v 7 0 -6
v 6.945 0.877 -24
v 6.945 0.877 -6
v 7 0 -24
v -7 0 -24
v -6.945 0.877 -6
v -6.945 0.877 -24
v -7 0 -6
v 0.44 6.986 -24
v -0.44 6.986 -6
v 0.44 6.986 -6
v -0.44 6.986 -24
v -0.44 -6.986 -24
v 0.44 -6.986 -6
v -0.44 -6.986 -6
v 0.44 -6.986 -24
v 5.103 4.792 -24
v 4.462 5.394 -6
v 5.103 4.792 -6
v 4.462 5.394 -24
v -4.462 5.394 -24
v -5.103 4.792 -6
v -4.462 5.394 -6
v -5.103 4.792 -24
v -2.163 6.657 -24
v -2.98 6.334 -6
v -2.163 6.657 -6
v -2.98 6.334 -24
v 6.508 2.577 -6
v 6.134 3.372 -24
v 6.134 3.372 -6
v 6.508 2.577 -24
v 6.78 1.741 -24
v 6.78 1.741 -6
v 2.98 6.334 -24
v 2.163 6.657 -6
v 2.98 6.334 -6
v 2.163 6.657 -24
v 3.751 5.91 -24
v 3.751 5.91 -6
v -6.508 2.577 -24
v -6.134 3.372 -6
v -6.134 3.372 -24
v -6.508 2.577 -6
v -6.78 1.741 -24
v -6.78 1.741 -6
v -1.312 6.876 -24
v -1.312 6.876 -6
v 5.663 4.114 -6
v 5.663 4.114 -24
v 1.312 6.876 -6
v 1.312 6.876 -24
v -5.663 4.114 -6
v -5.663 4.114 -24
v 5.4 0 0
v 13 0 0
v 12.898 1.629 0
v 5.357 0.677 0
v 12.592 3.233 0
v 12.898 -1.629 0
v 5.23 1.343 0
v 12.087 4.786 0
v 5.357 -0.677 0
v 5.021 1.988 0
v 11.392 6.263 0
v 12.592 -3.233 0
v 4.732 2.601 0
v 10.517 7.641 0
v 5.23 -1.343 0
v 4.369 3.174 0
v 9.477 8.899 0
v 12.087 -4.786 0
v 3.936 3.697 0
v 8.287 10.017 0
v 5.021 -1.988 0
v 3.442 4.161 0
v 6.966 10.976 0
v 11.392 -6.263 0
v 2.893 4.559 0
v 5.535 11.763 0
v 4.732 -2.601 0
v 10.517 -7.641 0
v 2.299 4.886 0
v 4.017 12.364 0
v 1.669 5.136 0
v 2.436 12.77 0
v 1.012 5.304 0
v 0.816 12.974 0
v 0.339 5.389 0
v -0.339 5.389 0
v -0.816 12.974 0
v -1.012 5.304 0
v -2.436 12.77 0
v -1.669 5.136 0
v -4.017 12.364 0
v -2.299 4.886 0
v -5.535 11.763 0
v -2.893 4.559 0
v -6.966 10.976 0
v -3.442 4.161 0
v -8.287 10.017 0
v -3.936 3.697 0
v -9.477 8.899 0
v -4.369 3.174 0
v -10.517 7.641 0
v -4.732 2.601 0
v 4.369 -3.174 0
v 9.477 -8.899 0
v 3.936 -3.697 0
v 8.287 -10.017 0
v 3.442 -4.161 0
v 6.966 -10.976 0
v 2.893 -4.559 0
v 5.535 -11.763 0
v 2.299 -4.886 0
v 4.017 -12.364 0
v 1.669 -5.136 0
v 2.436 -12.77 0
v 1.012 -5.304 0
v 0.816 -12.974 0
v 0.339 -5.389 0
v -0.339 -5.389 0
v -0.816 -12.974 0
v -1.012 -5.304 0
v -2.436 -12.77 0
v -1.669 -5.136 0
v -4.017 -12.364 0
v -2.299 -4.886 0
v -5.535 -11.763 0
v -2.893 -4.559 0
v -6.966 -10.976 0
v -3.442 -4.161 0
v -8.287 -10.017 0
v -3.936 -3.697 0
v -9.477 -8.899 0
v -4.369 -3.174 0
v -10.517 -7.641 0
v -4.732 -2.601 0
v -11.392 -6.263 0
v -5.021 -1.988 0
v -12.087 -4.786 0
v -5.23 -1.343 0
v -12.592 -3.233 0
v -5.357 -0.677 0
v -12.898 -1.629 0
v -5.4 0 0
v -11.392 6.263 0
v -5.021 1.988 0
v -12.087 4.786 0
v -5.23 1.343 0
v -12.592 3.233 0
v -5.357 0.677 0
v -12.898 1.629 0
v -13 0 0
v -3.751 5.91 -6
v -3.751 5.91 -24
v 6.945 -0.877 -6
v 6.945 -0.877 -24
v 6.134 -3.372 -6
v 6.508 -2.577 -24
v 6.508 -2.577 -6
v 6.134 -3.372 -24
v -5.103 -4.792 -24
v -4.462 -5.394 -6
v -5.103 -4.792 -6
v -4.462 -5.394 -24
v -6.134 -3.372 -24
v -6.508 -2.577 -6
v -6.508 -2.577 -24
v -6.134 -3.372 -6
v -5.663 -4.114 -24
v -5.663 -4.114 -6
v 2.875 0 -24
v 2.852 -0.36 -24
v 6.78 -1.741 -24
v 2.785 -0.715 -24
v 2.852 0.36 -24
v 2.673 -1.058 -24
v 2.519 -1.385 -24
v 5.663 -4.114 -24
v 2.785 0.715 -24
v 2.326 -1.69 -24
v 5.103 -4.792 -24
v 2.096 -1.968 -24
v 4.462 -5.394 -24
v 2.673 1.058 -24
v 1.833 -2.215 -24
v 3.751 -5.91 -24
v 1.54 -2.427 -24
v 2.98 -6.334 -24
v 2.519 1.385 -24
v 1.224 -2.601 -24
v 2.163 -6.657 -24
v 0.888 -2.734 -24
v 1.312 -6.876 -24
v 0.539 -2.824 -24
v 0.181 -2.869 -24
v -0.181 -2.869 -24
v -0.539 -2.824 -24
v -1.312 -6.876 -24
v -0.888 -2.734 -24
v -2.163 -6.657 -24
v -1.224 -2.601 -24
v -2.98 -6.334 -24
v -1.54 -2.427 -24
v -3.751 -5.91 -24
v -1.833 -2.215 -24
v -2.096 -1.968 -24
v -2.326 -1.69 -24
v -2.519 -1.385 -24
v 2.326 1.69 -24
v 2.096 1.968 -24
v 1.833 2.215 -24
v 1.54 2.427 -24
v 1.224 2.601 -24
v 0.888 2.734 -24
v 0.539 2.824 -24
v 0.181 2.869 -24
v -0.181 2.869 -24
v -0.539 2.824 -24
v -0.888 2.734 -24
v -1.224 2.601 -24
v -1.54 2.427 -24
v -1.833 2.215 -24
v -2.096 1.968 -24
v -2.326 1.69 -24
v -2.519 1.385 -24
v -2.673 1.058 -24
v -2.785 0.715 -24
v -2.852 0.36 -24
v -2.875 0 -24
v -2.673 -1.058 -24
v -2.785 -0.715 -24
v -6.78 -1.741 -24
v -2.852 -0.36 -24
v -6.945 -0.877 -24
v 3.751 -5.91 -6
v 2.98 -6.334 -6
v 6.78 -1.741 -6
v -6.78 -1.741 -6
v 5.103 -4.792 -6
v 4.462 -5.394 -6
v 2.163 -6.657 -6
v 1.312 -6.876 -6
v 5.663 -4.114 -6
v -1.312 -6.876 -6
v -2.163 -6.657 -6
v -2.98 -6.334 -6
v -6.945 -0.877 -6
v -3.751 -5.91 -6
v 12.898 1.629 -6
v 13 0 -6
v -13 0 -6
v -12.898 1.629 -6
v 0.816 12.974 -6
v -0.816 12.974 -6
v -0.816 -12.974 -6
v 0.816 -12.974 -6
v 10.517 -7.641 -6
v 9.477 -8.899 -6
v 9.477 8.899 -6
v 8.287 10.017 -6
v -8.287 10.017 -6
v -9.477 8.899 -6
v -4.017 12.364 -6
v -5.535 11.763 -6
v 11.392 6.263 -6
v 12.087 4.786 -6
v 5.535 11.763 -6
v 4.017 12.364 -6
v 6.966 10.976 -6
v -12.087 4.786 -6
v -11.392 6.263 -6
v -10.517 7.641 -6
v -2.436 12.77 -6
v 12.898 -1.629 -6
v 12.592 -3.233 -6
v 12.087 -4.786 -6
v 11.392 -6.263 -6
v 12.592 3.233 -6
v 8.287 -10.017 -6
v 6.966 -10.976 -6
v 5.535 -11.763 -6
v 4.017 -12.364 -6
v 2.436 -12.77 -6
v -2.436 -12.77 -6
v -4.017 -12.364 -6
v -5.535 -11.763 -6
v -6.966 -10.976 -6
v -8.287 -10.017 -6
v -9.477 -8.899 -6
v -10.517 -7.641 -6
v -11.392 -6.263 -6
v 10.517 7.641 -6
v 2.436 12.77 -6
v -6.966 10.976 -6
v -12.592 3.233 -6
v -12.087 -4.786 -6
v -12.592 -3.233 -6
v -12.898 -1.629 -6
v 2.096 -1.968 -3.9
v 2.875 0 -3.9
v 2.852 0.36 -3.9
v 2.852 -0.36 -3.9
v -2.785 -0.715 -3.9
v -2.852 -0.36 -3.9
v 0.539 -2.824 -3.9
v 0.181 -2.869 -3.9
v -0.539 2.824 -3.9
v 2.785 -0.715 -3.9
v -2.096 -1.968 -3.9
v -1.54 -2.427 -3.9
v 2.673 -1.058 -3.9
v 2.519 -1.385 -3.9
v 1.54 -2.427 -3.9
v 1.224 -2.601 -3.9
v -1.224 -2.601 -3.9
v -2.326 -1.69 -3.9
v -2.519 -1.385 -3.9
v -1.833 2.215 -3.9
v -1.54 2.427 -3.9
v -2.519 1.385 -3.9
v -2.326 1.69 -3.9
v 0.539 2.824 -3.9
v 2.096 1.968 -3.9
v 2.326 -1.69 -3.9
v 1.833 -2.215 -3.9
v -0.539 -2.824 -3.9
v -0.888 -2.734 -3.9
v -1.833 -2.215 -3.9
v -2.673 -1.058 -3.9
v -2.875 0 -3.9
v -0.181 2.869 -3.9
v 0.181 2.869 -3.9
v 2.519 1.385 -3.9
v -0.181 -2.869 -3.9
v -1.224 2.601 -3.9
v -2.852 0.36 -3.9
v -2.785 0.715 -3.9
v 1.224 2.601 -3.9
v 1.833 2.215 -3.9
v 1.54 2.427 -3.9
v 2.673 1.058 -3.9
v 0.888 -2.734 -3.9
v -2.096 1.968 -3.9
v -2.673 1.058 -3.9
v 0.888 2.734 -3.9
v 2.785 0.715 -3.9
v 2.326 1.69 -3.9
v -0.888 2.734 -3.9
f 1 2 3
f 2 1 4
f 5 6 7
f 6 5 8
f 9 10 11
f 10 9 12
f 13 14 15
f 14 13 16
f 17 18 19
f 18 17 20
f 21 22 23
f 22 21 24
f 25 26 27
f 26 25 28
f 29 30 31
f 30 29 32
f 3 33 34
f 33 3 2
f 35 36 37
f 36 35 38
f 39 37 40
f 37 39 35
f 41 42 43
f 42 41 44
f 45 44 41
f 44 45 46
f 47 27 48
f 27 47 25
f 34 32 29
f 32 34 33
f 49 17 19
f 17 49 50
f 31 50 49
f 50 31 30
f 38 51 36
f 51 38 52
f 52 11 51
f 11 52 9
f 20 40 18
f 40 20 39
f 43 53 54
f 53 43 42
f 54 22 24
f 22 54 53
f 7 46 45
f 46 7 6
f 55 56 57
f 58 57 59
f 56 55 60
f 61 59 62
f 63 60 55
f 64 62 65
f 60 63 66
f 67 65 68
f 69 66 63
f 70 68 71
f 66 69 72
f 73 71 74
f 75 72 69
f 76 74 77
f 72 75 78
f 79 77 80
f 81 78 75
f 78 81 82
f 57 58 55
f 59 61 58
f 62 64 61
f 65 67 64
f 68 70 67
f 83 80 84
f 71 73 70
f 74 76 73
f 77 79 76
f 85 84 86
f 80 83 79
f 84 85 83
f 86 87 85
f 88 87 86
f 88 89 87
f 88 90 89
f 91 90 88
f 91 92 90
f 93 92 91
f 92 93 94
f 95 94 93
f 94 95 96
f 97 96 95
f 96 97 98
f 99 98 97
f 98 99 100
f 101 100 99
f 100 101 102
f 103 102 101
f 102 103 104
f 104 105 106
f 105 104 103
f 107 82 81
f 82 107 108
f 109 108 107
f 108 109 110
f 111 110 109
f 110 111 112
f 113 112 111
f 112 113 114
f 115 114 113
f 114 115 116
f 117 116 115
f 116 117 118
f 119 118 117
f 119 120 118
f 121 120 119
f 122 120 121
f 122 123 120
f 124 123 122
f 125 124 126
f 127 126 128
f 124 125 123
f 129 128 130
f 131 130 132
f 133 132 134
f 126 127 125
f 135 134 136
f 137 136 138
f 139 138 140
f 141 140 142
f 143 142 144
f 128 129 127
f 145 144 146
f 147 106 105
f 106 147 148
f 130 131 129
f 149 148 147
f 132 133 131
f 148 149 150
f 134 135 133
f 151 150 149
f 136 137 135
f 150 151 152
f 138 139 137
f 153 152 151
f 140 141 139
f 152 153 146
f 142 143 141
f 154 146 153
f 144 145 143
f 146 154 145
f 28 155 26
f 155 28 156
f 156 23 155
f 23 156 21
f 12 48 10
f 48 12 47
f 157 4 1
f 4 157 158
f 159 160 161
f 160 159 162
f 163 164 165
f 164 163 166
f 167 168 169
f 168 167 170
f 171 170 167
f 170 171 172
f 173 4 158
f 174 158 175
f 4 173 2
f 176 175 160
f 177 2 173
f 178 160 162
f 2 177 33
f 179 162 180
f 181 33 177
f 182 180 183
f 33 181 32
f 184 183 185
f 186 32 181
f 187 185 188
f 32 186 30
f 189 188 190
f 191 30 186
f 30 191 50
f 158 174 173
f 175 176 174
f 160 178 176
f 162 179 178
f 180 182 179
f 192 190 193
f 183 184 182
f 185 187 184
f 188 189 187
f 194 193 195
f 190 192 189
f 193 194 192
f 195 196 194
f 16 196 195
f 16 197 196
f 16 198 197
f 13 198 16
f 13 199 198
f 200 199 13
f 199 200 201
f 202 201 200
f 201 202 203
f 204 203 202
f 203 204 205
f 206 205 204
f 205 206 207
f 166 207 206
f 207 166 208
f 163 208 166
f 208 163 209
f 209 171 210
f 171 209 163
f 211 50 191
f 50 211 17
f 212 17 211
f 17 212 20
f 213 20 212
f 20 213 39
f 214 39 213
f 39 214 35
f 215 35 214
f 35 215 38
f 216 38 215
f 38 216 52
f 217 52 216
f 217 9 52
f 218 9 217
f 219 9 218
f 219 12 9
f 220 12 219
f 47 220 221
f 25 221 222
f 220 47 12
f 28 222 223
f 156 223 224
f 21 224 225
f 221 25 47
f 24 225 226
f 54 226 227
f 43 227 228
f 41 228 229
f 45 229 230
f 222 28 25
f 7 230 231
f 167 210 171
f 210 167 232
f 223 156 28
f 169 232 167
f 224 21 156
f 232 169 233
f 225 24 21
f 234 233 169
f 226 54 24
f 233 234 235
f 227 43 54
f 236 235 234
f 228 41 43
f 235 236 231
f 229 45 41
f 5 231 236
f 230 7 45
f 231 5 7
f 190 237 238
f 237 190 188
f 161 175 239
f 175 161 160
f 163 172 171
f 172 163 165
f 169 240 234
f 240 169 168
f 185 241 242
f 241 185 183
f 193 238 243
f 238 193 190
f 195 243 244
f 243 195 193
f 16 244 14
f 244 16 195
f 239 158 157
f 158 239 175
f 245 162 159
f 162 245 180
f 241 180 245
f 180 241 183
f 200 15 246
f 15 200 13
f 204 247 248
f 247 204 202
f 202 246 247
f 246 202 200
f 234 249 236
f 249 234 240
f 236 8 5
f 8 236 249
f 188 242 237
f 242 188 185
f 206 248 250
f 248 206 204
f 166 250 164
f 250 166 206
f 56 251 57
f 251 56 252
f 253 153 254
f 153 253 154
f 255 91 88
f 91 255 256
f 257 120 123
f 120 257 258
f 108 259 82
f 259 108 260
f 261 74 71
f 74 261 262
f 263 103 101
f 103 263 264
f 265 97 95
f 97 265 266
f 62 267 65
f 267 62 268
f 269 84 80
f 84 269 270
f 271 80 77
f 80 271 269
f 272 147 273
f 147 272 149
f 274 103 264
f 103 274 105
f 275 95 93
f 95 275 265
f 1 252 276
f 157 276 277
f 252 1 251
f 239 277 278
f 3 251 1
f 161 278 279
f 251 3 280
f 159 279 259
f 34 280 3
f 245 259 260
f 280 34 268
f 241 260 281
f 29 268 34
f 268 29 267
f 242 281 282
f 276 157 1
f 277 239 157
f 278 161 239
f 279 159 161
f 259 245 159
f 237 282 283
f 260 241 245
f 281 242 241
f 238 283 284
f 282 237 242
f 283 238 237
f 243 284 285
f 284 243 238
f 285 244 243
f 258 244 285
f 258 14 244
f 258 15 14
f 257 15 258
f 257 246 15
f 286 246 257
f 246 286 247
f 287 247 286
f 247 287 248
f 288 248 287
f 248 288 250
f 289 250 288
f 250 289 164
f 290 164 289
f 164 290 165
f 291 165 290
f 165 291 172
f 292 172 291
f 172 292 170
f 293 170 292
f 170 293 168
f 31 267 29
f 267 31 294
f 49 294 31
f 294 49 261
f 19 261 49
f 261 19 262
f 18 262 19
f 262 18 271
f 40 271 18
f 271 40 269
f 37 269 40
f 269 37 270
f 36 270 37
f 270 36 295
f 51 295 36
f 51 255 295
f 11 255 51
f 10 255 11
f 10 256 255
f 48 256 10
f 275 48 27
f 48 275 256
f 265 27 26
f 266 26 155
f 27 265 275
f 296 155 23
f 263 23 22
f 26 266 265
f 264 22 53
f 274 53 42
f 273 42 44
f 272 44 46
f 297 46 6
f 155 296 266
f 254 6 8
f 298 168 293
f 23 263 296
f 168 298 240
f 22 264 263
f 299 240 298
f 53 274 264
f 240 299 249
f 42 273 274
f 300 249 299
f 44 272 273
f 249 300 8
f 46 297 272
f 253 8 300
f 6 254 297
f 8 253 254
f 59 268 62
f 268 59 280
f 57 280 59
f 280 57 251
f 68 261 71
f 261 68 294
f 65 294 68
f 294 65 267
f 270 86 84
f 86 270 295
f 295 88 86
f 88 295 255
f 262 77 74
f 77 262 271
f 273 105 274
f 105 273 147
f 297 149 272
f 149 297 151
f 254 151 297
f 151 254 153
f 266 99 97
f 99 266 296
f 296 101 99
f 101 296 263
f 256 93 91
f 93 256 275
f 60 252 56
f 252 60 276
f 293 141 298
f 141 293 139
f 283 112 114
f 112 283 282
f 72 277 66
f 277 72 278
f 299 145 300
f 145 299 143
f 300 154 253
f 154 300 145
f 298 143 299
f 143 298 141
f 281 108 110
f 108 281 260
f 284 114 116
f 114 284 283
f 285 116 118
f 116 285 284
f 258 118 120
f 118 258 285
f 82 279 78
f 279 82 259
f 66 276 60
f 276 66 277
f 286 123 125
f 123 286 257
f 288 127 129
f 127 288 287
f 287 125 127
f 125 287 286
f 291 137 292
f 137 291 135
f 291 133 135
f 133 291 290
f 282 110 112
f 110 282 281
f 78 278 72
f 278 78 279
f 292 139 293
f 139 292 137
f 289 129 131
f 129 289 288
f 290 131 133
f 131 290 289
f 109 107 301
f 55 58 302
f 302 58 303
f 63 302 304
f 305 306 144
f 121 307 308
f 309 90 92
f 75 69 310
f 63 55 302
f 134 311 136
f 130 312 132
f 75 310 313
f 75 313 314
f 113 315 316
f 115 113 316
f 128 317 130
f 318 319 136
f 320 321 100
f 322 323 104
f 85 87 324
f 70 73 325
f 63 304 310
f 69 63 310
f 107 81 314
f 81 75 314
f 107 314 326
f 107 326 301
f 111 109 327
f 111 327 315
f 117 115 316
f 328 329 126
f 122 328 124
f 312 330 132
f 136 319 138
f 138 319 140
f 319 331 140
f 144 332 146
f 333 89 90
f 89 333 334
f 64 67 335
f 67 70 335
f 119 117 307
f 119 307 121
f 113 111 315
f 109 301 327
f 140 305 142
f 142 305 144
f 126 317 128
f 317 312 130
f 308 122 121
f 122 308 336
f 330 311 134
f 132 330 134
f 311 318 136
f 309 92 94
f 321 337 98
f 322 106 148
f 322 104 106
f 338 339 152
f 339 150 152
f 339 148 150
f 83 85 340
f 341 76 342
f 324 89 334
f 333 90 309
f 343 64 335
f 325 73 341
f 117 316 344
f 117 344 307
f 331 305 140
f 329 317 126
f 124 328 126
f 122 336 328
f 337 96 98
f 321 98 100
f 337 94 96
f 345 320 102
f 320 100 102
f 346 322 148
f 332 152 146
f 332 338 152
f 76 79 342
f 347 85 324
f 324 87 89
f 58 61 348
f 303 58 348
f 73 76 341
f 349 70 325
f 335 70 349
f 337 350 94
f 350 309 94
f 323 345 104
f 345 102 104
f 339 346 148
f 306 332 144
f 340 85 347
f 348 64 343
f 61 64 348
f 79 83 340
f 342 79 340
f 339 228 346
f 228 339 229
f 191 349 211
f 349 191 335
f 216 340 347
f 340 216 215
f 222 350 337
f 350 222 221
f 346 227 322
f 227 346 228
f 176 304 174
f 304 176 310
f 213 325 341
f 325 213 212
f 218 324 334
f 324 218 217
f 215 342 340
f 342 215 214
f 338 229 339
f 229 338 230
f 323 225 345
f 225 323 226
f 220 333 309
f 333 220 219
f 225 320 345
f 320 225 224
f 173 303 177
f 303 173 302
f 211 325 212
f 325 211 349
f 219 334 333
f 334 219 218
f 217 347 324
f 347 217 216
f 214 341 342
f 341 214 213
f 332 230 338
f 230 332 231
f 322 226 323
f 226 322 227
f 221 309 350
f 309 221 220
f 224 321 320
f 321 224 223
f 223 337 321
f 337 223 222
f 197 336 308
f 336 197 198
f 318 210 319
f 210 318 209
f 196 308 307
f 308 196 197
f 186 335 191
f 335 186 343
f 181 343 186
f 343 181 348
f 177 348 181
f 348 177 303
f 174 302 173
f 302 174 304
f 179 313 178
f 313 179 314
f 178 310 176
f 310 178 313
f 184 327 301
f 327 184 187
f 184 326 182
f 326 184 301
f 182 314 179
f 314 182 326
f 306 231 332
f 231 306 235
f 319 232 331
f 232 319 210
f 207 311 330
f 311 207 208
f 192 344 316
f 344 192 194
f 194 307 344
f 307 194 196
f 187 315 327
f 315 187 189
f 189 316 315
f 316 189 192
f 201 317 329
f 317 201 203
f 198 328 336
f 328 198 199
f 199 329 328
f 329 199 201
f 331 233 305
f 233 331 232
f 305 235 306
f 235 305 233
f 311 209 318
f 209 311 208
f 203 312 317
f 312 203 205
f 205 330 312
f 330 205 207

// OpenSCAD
$fn = 50;


difference() {
	union() {
		translate(v = [0, 0, -24.0000000000]) {
			cylinder(h = 24, r = 7.0000000000);
		}
		translate(v = [0, 0, -6.0000000000]) {
			cylinder(h = 6, r = 13.0000000000);
		}
	}
	union() {
		translate(v = [0, 0, 0]) {
			rotate(a = [0, 0, 0]) {
				difference() {
					union() {
						#translate(v = [0, 0, -24.0000000000]) {
							cylinder(h = 24, r = 2.6000000000);
						}
						#translate(v = [0, 0, -3.9000000000]) {
							cylinder(h = 3.9000000000, r1 = 2.8750000000, r2 = 5.4000000000);
						}
						#translate(v = [0, 0, -24.0000000000]) {
							cylinder(h = 24, r = 2.8750000000);
						}
						#translate(v = [0, 0, -24.0000000000]) {
							cylinder(h = 24, r = 2.6000000000);
						}
					}
					union();
				}
			}
		}
	}
}
